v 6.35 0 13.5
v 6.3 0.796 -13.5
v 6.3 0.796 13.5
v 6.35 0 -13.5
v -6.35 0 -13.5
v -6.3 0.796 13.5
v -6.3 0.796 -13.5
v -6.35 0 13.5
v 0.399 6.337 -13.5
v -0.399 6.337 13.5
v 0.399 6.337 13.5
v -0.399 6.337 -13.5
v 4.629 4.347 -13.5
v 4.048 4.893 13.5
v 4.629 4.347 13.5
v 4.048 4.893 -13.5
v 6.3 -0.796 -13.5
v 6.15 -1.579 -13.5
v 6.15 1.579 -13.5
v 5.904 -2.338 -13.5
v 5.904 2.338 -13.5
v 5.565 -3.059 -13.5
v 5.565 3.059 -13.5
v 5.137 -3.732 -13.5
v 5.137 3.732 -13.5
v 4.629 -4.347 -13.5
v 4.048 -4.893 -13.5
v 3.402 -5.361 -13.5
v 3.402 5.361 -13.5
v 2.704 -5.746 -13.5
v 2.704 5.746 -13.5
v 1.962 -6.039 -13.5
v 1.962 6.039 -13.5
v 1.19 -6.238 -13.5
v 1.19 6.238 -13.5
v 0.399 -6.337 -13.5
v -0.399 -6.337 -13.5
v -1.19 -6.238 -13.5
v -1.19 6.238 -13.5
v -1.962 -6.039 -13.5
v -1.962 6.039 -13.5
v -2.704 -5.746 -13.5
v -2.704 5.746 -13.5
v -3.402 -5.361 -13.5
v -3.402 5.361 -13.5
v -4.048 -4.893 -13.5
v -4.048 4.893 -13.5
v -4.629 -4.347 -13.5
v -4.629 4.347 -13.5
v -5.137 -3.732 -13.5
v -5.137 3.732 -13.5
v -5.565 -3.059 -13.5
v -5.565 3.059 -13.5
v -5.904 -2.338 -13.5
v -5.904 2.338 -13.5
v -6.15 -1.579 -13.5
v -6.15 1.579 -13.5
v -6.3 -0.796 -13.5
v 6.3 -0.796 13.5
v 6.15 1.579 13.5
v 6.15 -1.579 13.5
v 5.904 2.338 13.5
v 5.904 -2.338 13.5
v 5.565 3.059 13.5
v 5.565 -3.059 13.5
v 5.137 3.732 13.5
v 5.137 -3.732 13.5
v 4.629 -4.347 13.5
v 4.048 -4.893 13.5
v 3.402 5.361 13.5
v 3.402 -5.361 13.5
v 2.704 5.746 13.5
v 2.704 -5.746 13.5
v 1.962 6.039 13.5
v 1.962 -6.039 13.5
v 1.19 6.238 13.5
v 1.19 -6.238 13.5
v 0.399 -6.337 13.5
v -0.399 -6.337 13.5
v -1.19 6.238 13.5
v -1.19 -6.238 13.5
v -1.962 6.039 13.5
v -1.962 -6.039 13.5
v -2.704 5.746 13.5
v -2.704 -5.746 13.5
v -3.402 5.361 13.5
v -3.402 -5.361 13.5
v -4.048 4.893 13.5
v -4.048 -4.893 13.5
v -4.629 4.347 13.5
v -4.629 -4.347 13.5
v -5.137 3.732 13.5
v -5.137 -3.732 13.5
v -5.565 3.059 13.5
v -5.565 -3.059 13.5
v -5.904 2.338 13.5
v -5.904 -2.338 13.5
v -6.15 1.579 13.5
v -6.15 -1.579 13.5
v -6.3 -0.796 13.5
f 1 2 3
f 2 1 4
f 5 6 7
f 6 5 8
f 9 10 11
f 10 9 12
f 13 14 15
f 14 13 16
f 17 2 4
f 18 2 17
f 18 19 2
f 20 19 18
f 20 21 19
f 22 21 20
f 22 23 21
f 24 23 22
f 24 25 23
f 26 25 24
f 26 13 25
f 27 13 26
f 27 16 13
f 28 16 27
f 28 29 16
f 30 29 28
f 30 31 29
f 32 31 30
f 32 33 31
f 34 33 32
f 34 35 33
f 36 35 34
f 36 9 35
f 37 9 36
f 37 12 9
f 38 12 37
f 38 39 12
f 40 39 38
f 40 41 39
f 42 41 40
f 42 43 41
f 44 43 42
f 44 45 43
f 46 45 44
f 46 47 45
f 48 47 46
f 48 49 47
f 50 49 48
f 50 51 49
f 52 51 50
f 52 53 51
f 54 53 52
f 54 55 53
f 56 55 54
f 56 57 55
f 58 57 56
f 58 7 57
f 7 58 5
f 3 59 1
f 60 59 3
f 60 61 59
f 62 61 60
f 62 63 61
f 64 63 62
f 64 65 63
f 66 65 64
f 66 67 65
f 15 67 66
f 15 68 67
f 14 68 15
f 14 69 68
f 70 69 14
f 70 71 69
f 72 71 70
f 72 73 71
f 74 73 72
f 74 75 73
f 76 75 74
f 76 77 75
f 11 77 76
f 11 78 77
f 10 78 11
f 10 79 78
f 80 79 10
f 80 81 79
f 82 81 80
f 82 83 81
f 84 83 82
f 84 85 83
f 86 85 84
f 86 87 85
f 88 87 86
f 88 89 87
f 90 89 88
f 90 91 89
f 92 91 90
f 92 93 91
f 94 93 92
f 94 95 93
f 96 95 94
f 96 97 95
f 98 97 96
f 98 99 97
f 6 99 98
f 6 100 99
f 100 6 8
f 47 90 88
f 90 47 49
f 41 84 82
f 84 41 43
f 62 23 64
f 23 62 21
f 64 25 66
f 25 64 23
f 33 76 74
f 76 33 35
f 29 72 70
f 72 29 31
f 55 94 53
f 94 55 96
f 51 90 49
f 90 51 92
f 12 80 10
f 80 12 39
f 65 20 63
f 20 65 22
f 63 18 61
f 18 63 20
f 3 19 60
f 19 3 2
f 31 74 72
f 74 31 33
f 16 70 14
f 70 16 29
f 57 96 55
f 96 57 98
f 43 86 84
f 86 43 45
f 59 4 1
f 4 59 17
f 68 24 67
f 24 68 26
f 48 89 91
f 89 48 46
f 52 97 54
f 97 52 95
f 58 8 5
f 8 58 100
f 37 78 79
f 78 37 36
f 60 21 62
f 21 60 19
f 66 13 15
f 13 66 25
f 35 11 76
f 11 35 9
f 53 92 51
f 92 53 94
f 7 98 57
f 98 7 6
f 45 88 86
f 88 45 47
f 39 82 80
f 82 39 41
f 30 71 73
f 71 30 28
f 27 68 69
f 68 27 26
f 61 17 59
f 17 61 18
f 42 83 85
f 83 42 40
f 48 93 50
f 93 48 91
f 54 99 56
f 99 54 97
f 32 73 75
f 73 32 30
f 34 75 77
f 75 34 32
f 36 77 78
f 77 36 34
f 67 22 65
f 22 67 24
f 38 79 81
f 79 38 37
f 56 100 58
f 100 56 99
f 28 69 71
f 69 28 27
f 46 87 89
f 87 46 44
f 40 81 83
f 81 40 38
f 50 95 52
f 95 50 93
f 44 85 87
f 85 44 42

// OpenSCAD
$fn = 50;


difference() {
	union() {
		translate(v = [0, 0, -13.5000000000]) {
			cylinder(h = 27, r = 6.3500000000);
		}
	}
	union() {
		translate(v = [0, 0, -100.0000000000]) {
			cylinder(h = 200, r = 0);
		}
	}
}
